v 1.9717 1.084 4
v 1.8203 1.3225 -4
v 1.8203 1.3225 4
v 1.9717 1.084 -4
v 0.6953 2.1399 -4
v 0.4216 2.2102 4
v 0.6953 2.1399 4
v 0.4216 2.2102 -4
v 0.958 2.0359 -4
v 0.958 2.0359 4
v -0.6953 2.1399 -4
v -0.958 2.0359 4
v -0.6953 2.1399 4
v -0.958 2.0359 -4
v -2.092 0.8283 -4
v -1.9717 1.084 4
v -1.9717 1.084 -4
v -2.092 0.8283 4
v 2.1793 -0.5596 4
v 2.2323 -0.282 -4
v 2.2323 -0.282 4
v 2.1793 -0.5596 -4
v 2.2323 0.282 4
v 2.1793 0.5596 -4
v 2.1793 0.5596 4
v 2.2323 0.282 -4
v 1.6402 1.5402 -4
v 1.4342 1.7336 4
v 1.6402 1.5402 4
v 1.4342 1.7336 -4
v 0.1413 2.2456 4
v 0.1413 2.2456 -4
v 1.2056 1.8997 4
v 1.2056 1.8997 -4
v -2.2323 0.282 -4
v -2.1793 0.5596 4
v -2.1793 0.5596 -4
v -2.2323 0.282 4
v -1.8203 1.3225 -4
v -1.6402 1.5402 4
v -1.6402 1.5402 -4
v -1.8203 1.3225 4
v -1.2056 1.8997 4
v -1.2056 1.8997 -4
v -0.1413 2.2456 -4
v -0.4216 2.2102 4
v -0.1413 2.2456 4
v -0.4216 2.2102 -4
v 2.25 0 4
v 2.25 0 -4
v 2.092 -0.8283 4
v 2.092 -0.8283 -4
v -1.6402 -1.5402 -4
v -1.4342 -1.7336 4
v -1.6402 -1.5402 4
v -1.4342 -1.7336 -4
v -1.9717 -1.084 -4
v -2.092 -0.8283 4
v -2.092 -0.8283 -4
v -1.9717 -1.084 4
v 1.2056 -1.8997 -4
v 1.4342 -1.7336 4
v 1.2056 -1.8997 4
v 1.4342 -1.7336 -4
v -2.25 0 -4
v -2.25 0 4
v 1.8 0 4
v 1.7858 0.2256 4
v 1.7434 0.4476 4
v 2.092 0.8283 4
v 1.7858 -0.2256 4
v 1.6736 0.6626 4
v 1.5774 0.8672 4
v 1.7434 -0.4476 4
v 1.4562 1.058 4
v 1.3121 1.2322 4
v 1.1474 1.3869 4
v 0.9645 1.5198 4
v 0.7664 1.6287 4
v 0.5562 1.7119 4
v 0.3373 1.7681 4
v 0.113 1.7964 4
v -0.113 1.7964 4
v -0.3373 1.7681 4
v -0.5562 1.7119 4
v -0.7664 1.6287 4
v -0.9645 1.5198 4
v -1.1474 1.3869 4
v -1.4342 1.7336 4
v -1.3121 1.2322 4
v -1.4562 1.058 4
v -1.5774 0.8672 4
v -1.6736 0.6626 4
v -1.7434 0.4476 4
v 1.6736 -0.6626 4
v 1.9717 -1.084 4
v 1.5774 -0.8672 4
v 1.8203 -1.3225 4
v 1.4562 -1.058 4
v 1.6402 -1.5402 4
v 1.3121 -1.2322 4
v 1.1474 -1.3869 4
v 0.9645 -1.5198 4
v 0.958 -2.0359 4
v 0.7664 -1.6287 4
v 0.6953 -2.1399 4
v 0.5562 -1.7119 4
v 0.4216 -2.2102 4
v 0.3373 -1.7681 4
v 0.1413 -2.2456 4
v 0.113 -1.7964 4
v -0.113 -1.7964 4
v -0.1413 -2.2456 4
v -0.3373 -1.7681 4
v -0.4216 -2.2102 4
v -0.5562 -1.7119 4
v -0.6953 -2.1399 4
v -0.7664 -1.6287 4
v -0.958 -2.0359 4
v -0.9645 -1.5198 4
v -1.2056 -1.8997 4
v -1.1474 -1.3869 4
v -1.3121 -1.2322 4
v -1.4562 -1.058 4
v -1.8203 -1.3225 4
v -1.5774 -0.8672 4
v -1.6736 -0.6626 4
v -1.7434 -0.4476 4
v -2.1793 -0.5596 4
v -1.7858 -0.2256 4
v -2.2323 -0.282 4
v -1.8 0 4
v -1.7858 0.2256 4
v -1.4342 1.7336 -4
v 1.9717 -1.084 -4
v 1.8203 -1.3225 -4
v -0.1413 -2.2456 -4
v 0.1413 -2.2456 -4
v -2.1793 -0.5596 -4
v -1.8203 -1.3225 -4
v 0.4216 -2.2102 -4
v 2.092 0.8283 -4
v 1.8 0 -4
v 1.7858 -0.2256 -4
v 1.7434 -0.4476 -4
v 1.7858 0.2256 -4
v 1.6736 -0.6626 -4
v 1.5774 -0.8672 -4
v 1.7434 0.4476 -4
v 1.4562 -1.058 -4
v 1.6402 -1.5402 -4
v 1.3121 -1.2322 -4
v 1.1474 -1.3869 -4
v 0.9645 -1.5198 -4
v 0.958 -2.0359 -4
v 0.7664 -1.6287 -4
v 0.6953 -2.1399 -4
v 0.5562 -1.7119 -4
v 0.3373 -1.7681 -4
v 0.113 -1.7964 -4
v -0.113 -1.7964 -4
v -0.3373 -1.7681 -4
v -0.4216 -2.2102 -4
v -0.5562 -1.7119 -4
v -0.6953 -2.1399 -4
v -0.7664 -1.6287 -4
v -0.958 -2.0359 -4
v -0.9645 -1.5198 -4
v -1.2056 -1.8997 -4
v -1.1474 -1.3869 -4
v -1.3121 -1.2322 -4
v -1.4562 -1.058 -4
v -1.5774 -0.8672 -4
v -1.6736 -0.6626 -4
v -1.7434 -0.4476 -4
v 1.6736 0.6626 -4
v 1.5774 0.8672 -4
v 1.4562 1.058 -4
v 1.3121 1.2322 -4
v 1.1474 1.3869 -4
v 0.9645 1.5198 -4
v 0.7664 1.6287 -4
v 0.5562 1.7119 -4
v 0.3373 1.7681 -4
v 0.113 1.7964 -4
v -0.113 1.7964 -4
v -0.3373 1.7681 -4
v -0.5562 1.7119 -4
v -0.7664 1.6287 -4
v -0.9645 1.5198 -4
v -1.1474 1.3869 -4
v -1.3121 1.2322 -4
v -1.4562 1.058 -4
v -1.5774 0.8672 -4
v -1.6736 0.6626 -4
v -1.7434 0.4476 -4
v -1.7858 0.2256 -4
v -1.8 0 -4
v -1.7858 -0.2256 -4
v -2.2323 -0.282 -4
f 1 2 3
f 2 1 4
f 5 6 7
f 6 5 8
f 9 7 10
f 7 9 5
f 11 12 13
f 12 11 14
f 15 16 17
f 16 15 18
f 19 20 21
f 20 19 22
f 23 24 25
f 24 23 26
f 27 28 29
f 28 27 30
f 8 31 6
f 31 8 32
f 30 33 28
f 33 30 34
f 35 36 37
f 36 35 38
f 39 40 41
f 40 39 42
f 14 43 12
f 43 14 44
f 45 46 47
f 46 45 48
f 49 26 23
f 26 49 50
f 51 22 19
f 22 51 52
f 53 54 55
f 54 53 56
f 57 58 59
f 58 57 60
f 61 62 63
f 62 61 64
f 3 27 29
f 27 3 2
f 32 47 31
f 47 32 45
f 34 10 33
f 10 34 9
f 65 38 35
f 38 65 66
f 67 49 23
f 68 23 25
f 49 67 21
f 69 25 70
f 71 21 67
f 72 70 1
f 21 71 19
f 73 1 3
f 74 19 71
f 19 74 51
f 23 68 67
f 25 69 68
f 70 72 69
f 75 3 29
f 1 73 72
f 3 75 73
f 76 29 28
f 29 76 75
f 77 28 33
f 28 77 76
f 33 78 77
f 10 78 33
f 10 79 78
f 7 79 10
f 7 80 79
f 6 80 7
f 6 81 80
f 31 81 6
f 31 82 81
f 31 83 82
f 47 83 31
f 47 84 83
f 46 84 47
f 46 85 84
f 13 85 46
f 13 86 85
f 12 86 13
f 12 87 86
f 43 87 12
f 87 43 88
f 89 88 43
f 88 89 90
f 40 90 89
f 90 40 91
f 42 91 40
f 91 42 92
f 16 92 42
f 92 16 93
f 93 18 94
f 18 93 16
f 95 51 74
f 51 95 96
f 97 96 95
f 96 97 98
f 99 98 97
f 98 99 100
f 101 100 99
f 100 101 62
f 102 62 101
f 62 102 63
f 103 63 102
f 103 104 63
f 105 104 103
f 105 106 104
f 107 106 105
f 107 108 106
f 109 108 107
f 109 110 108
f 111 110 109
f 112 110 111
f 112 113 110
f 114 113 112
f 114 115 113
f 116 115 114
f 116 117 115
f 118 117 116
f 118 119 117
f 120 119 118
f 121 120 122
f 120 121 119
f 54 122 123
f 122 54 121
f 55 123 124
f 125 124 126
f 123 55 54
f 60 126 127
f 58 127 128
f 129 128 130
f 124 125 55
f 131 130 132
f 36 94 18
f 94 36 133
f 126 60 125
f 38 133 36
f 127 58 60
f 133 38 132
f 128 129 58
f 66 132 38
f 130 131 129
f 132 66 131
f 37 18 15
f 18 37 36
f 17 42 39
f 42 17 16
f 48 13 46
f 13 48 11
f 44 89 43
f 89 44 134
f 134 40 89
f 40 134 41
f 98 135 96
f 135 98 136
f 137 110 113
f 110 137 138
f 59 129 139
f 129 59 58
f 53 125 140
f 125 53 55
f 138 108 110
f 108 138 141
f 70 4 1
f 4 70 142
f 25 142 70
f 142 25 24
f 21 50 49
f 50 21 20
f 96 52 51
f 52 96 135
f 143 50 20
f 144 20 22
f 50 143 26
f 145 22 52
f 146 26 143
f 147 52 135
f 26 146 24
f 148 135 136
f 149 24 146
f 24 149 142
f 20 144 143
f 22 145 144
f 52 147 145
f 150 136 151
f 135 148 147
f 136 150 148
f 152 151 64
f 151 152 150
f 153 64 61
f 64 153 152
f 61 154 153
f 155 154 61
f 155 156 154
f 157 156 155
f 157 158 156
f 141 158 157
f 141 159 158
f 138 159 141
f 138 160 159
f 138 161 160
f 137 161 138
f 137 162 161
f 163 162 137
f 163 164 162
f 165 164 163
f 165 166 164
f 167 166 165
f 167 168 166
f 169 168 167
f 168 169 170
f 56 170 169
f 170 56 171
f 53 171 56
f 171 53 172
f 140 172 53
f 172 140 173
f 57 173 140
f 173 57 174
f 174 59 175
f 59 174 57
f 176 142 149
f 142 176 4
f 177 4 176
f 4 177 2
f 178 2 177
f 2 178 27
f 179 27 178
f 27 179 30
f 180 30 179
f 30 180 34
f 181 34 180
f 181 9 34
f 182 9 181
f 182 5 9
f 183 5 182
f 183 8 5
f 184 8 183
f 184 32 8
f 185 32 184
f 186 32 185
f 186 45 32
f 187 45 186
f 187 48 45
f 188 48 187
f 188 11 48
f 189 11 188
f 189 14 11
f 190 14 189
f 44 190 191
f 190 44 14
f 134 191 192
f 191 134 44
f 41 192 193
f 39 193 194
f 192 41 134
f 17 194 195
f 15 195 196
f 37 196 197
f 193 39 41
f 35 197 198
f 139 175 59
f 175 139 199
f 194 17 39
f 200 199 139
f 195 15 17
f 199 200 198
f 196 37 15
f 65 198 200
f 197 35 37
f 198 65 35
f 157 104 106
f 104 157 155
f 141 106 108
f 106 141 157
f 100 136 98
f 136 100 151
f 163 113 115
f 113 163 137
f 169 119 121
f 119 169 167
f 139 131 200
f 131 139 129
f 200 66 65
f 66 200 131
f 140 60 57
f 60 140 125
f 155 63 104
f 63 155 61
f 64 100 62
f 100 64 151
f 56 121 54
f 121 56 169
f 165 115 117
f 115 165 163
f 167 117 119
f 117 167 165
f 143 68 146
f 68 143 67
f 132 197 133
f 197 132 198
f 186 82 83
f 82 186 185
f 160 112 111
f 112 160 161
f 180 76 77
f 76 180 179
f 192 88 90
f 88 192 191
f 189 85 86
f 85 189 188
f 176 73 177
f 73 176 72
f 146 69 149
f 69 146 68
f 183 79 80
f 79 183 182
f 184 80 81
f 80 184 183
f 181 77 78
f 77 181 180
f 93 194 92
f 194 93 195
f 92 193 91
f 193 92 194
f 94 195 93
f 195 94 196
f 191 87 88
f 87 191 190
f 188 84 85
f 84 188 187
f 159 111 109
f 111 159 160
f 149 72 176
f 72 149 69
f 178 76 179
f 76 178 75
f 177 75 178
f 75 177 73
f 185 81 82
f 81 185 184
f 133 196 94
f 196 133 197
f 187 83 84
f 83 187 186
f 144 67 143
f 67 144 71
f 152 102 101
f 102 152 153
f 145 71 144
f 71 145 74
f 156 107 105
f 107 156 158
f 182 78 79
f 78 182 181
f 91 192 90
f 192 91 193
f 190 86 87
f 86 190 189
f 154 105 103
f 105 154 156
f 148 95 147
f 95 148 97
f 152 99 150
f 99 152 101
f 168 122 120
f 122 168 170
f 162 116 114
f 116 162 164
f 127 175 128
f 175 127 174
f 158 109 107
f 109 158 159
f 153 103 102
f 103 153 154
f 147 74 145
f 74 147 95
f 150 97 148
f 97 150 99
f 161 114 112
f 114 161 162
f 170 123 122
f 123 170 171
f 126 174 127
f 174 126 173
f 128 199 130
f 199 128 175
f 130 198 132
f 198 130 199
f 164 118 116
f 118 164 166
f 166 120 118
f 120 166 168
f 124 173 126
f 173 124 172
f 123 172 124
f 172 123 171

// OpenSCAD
$fn = 50;


difference() {
	union() {
		translate(v = [0, 0, -4.0000000000]) {
			cylinder(h = 8, r = 2.2500000000);
		}
	}
	union() {
		translate(v = [0, 0, -100.0000000000]) {
			cylinder(h = 200, r = 1.8000000000);
		}
	}
}
